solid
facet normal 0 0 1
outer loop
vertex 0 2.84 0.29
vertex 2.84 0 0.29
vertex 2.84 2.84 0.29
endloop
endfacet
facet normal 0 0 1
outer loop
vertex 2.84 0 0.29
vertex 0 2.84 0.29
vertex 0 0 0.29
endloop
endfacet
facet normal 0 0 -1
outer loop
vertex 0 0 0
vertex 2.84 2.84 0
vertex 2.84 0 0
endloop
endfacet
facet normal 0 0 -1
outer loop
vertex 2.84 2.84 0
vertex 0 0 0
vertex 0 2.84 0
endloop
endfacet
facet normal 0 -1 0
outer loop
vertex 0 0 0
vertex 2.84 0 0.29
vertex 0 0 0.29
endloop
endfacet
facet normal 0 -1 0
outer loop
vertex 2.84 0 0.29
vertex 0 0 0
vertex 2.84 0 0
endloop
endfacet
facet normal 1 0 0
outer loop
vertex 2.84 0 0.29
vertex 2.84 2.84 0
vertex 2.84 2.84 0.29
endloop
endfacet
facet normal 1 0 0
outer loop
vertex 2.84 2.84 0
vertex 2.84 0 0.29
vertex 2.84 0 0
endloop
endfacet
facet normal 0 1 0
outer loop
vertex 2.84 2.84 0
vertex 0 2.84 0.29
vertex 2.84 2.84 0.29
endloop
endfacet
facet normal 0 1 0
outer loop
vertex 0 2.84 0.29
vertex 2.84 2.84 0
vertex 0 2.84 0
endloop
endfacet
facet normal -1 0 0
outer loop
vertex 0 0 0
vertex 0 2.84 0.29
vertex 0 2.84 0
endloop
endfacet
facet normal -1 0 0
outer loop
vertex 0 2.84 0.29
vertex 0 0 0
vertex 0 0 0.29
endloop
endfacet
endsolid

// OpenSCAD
/* Warning, this is a very basic generator with a lot of approximation 
input data : [WLCSP, FRB, 2.84x2.84x0.29mm, 49, , A, C04-21246A]
generated by com.zoubworld.electronics.cad.model3d.Basic
Date : Sun Feb 15 10:50:49 CET 2026
*/

//body
color("black")
translate([0,0,0])
cube([2.84,2.84,0.29], center=false);
